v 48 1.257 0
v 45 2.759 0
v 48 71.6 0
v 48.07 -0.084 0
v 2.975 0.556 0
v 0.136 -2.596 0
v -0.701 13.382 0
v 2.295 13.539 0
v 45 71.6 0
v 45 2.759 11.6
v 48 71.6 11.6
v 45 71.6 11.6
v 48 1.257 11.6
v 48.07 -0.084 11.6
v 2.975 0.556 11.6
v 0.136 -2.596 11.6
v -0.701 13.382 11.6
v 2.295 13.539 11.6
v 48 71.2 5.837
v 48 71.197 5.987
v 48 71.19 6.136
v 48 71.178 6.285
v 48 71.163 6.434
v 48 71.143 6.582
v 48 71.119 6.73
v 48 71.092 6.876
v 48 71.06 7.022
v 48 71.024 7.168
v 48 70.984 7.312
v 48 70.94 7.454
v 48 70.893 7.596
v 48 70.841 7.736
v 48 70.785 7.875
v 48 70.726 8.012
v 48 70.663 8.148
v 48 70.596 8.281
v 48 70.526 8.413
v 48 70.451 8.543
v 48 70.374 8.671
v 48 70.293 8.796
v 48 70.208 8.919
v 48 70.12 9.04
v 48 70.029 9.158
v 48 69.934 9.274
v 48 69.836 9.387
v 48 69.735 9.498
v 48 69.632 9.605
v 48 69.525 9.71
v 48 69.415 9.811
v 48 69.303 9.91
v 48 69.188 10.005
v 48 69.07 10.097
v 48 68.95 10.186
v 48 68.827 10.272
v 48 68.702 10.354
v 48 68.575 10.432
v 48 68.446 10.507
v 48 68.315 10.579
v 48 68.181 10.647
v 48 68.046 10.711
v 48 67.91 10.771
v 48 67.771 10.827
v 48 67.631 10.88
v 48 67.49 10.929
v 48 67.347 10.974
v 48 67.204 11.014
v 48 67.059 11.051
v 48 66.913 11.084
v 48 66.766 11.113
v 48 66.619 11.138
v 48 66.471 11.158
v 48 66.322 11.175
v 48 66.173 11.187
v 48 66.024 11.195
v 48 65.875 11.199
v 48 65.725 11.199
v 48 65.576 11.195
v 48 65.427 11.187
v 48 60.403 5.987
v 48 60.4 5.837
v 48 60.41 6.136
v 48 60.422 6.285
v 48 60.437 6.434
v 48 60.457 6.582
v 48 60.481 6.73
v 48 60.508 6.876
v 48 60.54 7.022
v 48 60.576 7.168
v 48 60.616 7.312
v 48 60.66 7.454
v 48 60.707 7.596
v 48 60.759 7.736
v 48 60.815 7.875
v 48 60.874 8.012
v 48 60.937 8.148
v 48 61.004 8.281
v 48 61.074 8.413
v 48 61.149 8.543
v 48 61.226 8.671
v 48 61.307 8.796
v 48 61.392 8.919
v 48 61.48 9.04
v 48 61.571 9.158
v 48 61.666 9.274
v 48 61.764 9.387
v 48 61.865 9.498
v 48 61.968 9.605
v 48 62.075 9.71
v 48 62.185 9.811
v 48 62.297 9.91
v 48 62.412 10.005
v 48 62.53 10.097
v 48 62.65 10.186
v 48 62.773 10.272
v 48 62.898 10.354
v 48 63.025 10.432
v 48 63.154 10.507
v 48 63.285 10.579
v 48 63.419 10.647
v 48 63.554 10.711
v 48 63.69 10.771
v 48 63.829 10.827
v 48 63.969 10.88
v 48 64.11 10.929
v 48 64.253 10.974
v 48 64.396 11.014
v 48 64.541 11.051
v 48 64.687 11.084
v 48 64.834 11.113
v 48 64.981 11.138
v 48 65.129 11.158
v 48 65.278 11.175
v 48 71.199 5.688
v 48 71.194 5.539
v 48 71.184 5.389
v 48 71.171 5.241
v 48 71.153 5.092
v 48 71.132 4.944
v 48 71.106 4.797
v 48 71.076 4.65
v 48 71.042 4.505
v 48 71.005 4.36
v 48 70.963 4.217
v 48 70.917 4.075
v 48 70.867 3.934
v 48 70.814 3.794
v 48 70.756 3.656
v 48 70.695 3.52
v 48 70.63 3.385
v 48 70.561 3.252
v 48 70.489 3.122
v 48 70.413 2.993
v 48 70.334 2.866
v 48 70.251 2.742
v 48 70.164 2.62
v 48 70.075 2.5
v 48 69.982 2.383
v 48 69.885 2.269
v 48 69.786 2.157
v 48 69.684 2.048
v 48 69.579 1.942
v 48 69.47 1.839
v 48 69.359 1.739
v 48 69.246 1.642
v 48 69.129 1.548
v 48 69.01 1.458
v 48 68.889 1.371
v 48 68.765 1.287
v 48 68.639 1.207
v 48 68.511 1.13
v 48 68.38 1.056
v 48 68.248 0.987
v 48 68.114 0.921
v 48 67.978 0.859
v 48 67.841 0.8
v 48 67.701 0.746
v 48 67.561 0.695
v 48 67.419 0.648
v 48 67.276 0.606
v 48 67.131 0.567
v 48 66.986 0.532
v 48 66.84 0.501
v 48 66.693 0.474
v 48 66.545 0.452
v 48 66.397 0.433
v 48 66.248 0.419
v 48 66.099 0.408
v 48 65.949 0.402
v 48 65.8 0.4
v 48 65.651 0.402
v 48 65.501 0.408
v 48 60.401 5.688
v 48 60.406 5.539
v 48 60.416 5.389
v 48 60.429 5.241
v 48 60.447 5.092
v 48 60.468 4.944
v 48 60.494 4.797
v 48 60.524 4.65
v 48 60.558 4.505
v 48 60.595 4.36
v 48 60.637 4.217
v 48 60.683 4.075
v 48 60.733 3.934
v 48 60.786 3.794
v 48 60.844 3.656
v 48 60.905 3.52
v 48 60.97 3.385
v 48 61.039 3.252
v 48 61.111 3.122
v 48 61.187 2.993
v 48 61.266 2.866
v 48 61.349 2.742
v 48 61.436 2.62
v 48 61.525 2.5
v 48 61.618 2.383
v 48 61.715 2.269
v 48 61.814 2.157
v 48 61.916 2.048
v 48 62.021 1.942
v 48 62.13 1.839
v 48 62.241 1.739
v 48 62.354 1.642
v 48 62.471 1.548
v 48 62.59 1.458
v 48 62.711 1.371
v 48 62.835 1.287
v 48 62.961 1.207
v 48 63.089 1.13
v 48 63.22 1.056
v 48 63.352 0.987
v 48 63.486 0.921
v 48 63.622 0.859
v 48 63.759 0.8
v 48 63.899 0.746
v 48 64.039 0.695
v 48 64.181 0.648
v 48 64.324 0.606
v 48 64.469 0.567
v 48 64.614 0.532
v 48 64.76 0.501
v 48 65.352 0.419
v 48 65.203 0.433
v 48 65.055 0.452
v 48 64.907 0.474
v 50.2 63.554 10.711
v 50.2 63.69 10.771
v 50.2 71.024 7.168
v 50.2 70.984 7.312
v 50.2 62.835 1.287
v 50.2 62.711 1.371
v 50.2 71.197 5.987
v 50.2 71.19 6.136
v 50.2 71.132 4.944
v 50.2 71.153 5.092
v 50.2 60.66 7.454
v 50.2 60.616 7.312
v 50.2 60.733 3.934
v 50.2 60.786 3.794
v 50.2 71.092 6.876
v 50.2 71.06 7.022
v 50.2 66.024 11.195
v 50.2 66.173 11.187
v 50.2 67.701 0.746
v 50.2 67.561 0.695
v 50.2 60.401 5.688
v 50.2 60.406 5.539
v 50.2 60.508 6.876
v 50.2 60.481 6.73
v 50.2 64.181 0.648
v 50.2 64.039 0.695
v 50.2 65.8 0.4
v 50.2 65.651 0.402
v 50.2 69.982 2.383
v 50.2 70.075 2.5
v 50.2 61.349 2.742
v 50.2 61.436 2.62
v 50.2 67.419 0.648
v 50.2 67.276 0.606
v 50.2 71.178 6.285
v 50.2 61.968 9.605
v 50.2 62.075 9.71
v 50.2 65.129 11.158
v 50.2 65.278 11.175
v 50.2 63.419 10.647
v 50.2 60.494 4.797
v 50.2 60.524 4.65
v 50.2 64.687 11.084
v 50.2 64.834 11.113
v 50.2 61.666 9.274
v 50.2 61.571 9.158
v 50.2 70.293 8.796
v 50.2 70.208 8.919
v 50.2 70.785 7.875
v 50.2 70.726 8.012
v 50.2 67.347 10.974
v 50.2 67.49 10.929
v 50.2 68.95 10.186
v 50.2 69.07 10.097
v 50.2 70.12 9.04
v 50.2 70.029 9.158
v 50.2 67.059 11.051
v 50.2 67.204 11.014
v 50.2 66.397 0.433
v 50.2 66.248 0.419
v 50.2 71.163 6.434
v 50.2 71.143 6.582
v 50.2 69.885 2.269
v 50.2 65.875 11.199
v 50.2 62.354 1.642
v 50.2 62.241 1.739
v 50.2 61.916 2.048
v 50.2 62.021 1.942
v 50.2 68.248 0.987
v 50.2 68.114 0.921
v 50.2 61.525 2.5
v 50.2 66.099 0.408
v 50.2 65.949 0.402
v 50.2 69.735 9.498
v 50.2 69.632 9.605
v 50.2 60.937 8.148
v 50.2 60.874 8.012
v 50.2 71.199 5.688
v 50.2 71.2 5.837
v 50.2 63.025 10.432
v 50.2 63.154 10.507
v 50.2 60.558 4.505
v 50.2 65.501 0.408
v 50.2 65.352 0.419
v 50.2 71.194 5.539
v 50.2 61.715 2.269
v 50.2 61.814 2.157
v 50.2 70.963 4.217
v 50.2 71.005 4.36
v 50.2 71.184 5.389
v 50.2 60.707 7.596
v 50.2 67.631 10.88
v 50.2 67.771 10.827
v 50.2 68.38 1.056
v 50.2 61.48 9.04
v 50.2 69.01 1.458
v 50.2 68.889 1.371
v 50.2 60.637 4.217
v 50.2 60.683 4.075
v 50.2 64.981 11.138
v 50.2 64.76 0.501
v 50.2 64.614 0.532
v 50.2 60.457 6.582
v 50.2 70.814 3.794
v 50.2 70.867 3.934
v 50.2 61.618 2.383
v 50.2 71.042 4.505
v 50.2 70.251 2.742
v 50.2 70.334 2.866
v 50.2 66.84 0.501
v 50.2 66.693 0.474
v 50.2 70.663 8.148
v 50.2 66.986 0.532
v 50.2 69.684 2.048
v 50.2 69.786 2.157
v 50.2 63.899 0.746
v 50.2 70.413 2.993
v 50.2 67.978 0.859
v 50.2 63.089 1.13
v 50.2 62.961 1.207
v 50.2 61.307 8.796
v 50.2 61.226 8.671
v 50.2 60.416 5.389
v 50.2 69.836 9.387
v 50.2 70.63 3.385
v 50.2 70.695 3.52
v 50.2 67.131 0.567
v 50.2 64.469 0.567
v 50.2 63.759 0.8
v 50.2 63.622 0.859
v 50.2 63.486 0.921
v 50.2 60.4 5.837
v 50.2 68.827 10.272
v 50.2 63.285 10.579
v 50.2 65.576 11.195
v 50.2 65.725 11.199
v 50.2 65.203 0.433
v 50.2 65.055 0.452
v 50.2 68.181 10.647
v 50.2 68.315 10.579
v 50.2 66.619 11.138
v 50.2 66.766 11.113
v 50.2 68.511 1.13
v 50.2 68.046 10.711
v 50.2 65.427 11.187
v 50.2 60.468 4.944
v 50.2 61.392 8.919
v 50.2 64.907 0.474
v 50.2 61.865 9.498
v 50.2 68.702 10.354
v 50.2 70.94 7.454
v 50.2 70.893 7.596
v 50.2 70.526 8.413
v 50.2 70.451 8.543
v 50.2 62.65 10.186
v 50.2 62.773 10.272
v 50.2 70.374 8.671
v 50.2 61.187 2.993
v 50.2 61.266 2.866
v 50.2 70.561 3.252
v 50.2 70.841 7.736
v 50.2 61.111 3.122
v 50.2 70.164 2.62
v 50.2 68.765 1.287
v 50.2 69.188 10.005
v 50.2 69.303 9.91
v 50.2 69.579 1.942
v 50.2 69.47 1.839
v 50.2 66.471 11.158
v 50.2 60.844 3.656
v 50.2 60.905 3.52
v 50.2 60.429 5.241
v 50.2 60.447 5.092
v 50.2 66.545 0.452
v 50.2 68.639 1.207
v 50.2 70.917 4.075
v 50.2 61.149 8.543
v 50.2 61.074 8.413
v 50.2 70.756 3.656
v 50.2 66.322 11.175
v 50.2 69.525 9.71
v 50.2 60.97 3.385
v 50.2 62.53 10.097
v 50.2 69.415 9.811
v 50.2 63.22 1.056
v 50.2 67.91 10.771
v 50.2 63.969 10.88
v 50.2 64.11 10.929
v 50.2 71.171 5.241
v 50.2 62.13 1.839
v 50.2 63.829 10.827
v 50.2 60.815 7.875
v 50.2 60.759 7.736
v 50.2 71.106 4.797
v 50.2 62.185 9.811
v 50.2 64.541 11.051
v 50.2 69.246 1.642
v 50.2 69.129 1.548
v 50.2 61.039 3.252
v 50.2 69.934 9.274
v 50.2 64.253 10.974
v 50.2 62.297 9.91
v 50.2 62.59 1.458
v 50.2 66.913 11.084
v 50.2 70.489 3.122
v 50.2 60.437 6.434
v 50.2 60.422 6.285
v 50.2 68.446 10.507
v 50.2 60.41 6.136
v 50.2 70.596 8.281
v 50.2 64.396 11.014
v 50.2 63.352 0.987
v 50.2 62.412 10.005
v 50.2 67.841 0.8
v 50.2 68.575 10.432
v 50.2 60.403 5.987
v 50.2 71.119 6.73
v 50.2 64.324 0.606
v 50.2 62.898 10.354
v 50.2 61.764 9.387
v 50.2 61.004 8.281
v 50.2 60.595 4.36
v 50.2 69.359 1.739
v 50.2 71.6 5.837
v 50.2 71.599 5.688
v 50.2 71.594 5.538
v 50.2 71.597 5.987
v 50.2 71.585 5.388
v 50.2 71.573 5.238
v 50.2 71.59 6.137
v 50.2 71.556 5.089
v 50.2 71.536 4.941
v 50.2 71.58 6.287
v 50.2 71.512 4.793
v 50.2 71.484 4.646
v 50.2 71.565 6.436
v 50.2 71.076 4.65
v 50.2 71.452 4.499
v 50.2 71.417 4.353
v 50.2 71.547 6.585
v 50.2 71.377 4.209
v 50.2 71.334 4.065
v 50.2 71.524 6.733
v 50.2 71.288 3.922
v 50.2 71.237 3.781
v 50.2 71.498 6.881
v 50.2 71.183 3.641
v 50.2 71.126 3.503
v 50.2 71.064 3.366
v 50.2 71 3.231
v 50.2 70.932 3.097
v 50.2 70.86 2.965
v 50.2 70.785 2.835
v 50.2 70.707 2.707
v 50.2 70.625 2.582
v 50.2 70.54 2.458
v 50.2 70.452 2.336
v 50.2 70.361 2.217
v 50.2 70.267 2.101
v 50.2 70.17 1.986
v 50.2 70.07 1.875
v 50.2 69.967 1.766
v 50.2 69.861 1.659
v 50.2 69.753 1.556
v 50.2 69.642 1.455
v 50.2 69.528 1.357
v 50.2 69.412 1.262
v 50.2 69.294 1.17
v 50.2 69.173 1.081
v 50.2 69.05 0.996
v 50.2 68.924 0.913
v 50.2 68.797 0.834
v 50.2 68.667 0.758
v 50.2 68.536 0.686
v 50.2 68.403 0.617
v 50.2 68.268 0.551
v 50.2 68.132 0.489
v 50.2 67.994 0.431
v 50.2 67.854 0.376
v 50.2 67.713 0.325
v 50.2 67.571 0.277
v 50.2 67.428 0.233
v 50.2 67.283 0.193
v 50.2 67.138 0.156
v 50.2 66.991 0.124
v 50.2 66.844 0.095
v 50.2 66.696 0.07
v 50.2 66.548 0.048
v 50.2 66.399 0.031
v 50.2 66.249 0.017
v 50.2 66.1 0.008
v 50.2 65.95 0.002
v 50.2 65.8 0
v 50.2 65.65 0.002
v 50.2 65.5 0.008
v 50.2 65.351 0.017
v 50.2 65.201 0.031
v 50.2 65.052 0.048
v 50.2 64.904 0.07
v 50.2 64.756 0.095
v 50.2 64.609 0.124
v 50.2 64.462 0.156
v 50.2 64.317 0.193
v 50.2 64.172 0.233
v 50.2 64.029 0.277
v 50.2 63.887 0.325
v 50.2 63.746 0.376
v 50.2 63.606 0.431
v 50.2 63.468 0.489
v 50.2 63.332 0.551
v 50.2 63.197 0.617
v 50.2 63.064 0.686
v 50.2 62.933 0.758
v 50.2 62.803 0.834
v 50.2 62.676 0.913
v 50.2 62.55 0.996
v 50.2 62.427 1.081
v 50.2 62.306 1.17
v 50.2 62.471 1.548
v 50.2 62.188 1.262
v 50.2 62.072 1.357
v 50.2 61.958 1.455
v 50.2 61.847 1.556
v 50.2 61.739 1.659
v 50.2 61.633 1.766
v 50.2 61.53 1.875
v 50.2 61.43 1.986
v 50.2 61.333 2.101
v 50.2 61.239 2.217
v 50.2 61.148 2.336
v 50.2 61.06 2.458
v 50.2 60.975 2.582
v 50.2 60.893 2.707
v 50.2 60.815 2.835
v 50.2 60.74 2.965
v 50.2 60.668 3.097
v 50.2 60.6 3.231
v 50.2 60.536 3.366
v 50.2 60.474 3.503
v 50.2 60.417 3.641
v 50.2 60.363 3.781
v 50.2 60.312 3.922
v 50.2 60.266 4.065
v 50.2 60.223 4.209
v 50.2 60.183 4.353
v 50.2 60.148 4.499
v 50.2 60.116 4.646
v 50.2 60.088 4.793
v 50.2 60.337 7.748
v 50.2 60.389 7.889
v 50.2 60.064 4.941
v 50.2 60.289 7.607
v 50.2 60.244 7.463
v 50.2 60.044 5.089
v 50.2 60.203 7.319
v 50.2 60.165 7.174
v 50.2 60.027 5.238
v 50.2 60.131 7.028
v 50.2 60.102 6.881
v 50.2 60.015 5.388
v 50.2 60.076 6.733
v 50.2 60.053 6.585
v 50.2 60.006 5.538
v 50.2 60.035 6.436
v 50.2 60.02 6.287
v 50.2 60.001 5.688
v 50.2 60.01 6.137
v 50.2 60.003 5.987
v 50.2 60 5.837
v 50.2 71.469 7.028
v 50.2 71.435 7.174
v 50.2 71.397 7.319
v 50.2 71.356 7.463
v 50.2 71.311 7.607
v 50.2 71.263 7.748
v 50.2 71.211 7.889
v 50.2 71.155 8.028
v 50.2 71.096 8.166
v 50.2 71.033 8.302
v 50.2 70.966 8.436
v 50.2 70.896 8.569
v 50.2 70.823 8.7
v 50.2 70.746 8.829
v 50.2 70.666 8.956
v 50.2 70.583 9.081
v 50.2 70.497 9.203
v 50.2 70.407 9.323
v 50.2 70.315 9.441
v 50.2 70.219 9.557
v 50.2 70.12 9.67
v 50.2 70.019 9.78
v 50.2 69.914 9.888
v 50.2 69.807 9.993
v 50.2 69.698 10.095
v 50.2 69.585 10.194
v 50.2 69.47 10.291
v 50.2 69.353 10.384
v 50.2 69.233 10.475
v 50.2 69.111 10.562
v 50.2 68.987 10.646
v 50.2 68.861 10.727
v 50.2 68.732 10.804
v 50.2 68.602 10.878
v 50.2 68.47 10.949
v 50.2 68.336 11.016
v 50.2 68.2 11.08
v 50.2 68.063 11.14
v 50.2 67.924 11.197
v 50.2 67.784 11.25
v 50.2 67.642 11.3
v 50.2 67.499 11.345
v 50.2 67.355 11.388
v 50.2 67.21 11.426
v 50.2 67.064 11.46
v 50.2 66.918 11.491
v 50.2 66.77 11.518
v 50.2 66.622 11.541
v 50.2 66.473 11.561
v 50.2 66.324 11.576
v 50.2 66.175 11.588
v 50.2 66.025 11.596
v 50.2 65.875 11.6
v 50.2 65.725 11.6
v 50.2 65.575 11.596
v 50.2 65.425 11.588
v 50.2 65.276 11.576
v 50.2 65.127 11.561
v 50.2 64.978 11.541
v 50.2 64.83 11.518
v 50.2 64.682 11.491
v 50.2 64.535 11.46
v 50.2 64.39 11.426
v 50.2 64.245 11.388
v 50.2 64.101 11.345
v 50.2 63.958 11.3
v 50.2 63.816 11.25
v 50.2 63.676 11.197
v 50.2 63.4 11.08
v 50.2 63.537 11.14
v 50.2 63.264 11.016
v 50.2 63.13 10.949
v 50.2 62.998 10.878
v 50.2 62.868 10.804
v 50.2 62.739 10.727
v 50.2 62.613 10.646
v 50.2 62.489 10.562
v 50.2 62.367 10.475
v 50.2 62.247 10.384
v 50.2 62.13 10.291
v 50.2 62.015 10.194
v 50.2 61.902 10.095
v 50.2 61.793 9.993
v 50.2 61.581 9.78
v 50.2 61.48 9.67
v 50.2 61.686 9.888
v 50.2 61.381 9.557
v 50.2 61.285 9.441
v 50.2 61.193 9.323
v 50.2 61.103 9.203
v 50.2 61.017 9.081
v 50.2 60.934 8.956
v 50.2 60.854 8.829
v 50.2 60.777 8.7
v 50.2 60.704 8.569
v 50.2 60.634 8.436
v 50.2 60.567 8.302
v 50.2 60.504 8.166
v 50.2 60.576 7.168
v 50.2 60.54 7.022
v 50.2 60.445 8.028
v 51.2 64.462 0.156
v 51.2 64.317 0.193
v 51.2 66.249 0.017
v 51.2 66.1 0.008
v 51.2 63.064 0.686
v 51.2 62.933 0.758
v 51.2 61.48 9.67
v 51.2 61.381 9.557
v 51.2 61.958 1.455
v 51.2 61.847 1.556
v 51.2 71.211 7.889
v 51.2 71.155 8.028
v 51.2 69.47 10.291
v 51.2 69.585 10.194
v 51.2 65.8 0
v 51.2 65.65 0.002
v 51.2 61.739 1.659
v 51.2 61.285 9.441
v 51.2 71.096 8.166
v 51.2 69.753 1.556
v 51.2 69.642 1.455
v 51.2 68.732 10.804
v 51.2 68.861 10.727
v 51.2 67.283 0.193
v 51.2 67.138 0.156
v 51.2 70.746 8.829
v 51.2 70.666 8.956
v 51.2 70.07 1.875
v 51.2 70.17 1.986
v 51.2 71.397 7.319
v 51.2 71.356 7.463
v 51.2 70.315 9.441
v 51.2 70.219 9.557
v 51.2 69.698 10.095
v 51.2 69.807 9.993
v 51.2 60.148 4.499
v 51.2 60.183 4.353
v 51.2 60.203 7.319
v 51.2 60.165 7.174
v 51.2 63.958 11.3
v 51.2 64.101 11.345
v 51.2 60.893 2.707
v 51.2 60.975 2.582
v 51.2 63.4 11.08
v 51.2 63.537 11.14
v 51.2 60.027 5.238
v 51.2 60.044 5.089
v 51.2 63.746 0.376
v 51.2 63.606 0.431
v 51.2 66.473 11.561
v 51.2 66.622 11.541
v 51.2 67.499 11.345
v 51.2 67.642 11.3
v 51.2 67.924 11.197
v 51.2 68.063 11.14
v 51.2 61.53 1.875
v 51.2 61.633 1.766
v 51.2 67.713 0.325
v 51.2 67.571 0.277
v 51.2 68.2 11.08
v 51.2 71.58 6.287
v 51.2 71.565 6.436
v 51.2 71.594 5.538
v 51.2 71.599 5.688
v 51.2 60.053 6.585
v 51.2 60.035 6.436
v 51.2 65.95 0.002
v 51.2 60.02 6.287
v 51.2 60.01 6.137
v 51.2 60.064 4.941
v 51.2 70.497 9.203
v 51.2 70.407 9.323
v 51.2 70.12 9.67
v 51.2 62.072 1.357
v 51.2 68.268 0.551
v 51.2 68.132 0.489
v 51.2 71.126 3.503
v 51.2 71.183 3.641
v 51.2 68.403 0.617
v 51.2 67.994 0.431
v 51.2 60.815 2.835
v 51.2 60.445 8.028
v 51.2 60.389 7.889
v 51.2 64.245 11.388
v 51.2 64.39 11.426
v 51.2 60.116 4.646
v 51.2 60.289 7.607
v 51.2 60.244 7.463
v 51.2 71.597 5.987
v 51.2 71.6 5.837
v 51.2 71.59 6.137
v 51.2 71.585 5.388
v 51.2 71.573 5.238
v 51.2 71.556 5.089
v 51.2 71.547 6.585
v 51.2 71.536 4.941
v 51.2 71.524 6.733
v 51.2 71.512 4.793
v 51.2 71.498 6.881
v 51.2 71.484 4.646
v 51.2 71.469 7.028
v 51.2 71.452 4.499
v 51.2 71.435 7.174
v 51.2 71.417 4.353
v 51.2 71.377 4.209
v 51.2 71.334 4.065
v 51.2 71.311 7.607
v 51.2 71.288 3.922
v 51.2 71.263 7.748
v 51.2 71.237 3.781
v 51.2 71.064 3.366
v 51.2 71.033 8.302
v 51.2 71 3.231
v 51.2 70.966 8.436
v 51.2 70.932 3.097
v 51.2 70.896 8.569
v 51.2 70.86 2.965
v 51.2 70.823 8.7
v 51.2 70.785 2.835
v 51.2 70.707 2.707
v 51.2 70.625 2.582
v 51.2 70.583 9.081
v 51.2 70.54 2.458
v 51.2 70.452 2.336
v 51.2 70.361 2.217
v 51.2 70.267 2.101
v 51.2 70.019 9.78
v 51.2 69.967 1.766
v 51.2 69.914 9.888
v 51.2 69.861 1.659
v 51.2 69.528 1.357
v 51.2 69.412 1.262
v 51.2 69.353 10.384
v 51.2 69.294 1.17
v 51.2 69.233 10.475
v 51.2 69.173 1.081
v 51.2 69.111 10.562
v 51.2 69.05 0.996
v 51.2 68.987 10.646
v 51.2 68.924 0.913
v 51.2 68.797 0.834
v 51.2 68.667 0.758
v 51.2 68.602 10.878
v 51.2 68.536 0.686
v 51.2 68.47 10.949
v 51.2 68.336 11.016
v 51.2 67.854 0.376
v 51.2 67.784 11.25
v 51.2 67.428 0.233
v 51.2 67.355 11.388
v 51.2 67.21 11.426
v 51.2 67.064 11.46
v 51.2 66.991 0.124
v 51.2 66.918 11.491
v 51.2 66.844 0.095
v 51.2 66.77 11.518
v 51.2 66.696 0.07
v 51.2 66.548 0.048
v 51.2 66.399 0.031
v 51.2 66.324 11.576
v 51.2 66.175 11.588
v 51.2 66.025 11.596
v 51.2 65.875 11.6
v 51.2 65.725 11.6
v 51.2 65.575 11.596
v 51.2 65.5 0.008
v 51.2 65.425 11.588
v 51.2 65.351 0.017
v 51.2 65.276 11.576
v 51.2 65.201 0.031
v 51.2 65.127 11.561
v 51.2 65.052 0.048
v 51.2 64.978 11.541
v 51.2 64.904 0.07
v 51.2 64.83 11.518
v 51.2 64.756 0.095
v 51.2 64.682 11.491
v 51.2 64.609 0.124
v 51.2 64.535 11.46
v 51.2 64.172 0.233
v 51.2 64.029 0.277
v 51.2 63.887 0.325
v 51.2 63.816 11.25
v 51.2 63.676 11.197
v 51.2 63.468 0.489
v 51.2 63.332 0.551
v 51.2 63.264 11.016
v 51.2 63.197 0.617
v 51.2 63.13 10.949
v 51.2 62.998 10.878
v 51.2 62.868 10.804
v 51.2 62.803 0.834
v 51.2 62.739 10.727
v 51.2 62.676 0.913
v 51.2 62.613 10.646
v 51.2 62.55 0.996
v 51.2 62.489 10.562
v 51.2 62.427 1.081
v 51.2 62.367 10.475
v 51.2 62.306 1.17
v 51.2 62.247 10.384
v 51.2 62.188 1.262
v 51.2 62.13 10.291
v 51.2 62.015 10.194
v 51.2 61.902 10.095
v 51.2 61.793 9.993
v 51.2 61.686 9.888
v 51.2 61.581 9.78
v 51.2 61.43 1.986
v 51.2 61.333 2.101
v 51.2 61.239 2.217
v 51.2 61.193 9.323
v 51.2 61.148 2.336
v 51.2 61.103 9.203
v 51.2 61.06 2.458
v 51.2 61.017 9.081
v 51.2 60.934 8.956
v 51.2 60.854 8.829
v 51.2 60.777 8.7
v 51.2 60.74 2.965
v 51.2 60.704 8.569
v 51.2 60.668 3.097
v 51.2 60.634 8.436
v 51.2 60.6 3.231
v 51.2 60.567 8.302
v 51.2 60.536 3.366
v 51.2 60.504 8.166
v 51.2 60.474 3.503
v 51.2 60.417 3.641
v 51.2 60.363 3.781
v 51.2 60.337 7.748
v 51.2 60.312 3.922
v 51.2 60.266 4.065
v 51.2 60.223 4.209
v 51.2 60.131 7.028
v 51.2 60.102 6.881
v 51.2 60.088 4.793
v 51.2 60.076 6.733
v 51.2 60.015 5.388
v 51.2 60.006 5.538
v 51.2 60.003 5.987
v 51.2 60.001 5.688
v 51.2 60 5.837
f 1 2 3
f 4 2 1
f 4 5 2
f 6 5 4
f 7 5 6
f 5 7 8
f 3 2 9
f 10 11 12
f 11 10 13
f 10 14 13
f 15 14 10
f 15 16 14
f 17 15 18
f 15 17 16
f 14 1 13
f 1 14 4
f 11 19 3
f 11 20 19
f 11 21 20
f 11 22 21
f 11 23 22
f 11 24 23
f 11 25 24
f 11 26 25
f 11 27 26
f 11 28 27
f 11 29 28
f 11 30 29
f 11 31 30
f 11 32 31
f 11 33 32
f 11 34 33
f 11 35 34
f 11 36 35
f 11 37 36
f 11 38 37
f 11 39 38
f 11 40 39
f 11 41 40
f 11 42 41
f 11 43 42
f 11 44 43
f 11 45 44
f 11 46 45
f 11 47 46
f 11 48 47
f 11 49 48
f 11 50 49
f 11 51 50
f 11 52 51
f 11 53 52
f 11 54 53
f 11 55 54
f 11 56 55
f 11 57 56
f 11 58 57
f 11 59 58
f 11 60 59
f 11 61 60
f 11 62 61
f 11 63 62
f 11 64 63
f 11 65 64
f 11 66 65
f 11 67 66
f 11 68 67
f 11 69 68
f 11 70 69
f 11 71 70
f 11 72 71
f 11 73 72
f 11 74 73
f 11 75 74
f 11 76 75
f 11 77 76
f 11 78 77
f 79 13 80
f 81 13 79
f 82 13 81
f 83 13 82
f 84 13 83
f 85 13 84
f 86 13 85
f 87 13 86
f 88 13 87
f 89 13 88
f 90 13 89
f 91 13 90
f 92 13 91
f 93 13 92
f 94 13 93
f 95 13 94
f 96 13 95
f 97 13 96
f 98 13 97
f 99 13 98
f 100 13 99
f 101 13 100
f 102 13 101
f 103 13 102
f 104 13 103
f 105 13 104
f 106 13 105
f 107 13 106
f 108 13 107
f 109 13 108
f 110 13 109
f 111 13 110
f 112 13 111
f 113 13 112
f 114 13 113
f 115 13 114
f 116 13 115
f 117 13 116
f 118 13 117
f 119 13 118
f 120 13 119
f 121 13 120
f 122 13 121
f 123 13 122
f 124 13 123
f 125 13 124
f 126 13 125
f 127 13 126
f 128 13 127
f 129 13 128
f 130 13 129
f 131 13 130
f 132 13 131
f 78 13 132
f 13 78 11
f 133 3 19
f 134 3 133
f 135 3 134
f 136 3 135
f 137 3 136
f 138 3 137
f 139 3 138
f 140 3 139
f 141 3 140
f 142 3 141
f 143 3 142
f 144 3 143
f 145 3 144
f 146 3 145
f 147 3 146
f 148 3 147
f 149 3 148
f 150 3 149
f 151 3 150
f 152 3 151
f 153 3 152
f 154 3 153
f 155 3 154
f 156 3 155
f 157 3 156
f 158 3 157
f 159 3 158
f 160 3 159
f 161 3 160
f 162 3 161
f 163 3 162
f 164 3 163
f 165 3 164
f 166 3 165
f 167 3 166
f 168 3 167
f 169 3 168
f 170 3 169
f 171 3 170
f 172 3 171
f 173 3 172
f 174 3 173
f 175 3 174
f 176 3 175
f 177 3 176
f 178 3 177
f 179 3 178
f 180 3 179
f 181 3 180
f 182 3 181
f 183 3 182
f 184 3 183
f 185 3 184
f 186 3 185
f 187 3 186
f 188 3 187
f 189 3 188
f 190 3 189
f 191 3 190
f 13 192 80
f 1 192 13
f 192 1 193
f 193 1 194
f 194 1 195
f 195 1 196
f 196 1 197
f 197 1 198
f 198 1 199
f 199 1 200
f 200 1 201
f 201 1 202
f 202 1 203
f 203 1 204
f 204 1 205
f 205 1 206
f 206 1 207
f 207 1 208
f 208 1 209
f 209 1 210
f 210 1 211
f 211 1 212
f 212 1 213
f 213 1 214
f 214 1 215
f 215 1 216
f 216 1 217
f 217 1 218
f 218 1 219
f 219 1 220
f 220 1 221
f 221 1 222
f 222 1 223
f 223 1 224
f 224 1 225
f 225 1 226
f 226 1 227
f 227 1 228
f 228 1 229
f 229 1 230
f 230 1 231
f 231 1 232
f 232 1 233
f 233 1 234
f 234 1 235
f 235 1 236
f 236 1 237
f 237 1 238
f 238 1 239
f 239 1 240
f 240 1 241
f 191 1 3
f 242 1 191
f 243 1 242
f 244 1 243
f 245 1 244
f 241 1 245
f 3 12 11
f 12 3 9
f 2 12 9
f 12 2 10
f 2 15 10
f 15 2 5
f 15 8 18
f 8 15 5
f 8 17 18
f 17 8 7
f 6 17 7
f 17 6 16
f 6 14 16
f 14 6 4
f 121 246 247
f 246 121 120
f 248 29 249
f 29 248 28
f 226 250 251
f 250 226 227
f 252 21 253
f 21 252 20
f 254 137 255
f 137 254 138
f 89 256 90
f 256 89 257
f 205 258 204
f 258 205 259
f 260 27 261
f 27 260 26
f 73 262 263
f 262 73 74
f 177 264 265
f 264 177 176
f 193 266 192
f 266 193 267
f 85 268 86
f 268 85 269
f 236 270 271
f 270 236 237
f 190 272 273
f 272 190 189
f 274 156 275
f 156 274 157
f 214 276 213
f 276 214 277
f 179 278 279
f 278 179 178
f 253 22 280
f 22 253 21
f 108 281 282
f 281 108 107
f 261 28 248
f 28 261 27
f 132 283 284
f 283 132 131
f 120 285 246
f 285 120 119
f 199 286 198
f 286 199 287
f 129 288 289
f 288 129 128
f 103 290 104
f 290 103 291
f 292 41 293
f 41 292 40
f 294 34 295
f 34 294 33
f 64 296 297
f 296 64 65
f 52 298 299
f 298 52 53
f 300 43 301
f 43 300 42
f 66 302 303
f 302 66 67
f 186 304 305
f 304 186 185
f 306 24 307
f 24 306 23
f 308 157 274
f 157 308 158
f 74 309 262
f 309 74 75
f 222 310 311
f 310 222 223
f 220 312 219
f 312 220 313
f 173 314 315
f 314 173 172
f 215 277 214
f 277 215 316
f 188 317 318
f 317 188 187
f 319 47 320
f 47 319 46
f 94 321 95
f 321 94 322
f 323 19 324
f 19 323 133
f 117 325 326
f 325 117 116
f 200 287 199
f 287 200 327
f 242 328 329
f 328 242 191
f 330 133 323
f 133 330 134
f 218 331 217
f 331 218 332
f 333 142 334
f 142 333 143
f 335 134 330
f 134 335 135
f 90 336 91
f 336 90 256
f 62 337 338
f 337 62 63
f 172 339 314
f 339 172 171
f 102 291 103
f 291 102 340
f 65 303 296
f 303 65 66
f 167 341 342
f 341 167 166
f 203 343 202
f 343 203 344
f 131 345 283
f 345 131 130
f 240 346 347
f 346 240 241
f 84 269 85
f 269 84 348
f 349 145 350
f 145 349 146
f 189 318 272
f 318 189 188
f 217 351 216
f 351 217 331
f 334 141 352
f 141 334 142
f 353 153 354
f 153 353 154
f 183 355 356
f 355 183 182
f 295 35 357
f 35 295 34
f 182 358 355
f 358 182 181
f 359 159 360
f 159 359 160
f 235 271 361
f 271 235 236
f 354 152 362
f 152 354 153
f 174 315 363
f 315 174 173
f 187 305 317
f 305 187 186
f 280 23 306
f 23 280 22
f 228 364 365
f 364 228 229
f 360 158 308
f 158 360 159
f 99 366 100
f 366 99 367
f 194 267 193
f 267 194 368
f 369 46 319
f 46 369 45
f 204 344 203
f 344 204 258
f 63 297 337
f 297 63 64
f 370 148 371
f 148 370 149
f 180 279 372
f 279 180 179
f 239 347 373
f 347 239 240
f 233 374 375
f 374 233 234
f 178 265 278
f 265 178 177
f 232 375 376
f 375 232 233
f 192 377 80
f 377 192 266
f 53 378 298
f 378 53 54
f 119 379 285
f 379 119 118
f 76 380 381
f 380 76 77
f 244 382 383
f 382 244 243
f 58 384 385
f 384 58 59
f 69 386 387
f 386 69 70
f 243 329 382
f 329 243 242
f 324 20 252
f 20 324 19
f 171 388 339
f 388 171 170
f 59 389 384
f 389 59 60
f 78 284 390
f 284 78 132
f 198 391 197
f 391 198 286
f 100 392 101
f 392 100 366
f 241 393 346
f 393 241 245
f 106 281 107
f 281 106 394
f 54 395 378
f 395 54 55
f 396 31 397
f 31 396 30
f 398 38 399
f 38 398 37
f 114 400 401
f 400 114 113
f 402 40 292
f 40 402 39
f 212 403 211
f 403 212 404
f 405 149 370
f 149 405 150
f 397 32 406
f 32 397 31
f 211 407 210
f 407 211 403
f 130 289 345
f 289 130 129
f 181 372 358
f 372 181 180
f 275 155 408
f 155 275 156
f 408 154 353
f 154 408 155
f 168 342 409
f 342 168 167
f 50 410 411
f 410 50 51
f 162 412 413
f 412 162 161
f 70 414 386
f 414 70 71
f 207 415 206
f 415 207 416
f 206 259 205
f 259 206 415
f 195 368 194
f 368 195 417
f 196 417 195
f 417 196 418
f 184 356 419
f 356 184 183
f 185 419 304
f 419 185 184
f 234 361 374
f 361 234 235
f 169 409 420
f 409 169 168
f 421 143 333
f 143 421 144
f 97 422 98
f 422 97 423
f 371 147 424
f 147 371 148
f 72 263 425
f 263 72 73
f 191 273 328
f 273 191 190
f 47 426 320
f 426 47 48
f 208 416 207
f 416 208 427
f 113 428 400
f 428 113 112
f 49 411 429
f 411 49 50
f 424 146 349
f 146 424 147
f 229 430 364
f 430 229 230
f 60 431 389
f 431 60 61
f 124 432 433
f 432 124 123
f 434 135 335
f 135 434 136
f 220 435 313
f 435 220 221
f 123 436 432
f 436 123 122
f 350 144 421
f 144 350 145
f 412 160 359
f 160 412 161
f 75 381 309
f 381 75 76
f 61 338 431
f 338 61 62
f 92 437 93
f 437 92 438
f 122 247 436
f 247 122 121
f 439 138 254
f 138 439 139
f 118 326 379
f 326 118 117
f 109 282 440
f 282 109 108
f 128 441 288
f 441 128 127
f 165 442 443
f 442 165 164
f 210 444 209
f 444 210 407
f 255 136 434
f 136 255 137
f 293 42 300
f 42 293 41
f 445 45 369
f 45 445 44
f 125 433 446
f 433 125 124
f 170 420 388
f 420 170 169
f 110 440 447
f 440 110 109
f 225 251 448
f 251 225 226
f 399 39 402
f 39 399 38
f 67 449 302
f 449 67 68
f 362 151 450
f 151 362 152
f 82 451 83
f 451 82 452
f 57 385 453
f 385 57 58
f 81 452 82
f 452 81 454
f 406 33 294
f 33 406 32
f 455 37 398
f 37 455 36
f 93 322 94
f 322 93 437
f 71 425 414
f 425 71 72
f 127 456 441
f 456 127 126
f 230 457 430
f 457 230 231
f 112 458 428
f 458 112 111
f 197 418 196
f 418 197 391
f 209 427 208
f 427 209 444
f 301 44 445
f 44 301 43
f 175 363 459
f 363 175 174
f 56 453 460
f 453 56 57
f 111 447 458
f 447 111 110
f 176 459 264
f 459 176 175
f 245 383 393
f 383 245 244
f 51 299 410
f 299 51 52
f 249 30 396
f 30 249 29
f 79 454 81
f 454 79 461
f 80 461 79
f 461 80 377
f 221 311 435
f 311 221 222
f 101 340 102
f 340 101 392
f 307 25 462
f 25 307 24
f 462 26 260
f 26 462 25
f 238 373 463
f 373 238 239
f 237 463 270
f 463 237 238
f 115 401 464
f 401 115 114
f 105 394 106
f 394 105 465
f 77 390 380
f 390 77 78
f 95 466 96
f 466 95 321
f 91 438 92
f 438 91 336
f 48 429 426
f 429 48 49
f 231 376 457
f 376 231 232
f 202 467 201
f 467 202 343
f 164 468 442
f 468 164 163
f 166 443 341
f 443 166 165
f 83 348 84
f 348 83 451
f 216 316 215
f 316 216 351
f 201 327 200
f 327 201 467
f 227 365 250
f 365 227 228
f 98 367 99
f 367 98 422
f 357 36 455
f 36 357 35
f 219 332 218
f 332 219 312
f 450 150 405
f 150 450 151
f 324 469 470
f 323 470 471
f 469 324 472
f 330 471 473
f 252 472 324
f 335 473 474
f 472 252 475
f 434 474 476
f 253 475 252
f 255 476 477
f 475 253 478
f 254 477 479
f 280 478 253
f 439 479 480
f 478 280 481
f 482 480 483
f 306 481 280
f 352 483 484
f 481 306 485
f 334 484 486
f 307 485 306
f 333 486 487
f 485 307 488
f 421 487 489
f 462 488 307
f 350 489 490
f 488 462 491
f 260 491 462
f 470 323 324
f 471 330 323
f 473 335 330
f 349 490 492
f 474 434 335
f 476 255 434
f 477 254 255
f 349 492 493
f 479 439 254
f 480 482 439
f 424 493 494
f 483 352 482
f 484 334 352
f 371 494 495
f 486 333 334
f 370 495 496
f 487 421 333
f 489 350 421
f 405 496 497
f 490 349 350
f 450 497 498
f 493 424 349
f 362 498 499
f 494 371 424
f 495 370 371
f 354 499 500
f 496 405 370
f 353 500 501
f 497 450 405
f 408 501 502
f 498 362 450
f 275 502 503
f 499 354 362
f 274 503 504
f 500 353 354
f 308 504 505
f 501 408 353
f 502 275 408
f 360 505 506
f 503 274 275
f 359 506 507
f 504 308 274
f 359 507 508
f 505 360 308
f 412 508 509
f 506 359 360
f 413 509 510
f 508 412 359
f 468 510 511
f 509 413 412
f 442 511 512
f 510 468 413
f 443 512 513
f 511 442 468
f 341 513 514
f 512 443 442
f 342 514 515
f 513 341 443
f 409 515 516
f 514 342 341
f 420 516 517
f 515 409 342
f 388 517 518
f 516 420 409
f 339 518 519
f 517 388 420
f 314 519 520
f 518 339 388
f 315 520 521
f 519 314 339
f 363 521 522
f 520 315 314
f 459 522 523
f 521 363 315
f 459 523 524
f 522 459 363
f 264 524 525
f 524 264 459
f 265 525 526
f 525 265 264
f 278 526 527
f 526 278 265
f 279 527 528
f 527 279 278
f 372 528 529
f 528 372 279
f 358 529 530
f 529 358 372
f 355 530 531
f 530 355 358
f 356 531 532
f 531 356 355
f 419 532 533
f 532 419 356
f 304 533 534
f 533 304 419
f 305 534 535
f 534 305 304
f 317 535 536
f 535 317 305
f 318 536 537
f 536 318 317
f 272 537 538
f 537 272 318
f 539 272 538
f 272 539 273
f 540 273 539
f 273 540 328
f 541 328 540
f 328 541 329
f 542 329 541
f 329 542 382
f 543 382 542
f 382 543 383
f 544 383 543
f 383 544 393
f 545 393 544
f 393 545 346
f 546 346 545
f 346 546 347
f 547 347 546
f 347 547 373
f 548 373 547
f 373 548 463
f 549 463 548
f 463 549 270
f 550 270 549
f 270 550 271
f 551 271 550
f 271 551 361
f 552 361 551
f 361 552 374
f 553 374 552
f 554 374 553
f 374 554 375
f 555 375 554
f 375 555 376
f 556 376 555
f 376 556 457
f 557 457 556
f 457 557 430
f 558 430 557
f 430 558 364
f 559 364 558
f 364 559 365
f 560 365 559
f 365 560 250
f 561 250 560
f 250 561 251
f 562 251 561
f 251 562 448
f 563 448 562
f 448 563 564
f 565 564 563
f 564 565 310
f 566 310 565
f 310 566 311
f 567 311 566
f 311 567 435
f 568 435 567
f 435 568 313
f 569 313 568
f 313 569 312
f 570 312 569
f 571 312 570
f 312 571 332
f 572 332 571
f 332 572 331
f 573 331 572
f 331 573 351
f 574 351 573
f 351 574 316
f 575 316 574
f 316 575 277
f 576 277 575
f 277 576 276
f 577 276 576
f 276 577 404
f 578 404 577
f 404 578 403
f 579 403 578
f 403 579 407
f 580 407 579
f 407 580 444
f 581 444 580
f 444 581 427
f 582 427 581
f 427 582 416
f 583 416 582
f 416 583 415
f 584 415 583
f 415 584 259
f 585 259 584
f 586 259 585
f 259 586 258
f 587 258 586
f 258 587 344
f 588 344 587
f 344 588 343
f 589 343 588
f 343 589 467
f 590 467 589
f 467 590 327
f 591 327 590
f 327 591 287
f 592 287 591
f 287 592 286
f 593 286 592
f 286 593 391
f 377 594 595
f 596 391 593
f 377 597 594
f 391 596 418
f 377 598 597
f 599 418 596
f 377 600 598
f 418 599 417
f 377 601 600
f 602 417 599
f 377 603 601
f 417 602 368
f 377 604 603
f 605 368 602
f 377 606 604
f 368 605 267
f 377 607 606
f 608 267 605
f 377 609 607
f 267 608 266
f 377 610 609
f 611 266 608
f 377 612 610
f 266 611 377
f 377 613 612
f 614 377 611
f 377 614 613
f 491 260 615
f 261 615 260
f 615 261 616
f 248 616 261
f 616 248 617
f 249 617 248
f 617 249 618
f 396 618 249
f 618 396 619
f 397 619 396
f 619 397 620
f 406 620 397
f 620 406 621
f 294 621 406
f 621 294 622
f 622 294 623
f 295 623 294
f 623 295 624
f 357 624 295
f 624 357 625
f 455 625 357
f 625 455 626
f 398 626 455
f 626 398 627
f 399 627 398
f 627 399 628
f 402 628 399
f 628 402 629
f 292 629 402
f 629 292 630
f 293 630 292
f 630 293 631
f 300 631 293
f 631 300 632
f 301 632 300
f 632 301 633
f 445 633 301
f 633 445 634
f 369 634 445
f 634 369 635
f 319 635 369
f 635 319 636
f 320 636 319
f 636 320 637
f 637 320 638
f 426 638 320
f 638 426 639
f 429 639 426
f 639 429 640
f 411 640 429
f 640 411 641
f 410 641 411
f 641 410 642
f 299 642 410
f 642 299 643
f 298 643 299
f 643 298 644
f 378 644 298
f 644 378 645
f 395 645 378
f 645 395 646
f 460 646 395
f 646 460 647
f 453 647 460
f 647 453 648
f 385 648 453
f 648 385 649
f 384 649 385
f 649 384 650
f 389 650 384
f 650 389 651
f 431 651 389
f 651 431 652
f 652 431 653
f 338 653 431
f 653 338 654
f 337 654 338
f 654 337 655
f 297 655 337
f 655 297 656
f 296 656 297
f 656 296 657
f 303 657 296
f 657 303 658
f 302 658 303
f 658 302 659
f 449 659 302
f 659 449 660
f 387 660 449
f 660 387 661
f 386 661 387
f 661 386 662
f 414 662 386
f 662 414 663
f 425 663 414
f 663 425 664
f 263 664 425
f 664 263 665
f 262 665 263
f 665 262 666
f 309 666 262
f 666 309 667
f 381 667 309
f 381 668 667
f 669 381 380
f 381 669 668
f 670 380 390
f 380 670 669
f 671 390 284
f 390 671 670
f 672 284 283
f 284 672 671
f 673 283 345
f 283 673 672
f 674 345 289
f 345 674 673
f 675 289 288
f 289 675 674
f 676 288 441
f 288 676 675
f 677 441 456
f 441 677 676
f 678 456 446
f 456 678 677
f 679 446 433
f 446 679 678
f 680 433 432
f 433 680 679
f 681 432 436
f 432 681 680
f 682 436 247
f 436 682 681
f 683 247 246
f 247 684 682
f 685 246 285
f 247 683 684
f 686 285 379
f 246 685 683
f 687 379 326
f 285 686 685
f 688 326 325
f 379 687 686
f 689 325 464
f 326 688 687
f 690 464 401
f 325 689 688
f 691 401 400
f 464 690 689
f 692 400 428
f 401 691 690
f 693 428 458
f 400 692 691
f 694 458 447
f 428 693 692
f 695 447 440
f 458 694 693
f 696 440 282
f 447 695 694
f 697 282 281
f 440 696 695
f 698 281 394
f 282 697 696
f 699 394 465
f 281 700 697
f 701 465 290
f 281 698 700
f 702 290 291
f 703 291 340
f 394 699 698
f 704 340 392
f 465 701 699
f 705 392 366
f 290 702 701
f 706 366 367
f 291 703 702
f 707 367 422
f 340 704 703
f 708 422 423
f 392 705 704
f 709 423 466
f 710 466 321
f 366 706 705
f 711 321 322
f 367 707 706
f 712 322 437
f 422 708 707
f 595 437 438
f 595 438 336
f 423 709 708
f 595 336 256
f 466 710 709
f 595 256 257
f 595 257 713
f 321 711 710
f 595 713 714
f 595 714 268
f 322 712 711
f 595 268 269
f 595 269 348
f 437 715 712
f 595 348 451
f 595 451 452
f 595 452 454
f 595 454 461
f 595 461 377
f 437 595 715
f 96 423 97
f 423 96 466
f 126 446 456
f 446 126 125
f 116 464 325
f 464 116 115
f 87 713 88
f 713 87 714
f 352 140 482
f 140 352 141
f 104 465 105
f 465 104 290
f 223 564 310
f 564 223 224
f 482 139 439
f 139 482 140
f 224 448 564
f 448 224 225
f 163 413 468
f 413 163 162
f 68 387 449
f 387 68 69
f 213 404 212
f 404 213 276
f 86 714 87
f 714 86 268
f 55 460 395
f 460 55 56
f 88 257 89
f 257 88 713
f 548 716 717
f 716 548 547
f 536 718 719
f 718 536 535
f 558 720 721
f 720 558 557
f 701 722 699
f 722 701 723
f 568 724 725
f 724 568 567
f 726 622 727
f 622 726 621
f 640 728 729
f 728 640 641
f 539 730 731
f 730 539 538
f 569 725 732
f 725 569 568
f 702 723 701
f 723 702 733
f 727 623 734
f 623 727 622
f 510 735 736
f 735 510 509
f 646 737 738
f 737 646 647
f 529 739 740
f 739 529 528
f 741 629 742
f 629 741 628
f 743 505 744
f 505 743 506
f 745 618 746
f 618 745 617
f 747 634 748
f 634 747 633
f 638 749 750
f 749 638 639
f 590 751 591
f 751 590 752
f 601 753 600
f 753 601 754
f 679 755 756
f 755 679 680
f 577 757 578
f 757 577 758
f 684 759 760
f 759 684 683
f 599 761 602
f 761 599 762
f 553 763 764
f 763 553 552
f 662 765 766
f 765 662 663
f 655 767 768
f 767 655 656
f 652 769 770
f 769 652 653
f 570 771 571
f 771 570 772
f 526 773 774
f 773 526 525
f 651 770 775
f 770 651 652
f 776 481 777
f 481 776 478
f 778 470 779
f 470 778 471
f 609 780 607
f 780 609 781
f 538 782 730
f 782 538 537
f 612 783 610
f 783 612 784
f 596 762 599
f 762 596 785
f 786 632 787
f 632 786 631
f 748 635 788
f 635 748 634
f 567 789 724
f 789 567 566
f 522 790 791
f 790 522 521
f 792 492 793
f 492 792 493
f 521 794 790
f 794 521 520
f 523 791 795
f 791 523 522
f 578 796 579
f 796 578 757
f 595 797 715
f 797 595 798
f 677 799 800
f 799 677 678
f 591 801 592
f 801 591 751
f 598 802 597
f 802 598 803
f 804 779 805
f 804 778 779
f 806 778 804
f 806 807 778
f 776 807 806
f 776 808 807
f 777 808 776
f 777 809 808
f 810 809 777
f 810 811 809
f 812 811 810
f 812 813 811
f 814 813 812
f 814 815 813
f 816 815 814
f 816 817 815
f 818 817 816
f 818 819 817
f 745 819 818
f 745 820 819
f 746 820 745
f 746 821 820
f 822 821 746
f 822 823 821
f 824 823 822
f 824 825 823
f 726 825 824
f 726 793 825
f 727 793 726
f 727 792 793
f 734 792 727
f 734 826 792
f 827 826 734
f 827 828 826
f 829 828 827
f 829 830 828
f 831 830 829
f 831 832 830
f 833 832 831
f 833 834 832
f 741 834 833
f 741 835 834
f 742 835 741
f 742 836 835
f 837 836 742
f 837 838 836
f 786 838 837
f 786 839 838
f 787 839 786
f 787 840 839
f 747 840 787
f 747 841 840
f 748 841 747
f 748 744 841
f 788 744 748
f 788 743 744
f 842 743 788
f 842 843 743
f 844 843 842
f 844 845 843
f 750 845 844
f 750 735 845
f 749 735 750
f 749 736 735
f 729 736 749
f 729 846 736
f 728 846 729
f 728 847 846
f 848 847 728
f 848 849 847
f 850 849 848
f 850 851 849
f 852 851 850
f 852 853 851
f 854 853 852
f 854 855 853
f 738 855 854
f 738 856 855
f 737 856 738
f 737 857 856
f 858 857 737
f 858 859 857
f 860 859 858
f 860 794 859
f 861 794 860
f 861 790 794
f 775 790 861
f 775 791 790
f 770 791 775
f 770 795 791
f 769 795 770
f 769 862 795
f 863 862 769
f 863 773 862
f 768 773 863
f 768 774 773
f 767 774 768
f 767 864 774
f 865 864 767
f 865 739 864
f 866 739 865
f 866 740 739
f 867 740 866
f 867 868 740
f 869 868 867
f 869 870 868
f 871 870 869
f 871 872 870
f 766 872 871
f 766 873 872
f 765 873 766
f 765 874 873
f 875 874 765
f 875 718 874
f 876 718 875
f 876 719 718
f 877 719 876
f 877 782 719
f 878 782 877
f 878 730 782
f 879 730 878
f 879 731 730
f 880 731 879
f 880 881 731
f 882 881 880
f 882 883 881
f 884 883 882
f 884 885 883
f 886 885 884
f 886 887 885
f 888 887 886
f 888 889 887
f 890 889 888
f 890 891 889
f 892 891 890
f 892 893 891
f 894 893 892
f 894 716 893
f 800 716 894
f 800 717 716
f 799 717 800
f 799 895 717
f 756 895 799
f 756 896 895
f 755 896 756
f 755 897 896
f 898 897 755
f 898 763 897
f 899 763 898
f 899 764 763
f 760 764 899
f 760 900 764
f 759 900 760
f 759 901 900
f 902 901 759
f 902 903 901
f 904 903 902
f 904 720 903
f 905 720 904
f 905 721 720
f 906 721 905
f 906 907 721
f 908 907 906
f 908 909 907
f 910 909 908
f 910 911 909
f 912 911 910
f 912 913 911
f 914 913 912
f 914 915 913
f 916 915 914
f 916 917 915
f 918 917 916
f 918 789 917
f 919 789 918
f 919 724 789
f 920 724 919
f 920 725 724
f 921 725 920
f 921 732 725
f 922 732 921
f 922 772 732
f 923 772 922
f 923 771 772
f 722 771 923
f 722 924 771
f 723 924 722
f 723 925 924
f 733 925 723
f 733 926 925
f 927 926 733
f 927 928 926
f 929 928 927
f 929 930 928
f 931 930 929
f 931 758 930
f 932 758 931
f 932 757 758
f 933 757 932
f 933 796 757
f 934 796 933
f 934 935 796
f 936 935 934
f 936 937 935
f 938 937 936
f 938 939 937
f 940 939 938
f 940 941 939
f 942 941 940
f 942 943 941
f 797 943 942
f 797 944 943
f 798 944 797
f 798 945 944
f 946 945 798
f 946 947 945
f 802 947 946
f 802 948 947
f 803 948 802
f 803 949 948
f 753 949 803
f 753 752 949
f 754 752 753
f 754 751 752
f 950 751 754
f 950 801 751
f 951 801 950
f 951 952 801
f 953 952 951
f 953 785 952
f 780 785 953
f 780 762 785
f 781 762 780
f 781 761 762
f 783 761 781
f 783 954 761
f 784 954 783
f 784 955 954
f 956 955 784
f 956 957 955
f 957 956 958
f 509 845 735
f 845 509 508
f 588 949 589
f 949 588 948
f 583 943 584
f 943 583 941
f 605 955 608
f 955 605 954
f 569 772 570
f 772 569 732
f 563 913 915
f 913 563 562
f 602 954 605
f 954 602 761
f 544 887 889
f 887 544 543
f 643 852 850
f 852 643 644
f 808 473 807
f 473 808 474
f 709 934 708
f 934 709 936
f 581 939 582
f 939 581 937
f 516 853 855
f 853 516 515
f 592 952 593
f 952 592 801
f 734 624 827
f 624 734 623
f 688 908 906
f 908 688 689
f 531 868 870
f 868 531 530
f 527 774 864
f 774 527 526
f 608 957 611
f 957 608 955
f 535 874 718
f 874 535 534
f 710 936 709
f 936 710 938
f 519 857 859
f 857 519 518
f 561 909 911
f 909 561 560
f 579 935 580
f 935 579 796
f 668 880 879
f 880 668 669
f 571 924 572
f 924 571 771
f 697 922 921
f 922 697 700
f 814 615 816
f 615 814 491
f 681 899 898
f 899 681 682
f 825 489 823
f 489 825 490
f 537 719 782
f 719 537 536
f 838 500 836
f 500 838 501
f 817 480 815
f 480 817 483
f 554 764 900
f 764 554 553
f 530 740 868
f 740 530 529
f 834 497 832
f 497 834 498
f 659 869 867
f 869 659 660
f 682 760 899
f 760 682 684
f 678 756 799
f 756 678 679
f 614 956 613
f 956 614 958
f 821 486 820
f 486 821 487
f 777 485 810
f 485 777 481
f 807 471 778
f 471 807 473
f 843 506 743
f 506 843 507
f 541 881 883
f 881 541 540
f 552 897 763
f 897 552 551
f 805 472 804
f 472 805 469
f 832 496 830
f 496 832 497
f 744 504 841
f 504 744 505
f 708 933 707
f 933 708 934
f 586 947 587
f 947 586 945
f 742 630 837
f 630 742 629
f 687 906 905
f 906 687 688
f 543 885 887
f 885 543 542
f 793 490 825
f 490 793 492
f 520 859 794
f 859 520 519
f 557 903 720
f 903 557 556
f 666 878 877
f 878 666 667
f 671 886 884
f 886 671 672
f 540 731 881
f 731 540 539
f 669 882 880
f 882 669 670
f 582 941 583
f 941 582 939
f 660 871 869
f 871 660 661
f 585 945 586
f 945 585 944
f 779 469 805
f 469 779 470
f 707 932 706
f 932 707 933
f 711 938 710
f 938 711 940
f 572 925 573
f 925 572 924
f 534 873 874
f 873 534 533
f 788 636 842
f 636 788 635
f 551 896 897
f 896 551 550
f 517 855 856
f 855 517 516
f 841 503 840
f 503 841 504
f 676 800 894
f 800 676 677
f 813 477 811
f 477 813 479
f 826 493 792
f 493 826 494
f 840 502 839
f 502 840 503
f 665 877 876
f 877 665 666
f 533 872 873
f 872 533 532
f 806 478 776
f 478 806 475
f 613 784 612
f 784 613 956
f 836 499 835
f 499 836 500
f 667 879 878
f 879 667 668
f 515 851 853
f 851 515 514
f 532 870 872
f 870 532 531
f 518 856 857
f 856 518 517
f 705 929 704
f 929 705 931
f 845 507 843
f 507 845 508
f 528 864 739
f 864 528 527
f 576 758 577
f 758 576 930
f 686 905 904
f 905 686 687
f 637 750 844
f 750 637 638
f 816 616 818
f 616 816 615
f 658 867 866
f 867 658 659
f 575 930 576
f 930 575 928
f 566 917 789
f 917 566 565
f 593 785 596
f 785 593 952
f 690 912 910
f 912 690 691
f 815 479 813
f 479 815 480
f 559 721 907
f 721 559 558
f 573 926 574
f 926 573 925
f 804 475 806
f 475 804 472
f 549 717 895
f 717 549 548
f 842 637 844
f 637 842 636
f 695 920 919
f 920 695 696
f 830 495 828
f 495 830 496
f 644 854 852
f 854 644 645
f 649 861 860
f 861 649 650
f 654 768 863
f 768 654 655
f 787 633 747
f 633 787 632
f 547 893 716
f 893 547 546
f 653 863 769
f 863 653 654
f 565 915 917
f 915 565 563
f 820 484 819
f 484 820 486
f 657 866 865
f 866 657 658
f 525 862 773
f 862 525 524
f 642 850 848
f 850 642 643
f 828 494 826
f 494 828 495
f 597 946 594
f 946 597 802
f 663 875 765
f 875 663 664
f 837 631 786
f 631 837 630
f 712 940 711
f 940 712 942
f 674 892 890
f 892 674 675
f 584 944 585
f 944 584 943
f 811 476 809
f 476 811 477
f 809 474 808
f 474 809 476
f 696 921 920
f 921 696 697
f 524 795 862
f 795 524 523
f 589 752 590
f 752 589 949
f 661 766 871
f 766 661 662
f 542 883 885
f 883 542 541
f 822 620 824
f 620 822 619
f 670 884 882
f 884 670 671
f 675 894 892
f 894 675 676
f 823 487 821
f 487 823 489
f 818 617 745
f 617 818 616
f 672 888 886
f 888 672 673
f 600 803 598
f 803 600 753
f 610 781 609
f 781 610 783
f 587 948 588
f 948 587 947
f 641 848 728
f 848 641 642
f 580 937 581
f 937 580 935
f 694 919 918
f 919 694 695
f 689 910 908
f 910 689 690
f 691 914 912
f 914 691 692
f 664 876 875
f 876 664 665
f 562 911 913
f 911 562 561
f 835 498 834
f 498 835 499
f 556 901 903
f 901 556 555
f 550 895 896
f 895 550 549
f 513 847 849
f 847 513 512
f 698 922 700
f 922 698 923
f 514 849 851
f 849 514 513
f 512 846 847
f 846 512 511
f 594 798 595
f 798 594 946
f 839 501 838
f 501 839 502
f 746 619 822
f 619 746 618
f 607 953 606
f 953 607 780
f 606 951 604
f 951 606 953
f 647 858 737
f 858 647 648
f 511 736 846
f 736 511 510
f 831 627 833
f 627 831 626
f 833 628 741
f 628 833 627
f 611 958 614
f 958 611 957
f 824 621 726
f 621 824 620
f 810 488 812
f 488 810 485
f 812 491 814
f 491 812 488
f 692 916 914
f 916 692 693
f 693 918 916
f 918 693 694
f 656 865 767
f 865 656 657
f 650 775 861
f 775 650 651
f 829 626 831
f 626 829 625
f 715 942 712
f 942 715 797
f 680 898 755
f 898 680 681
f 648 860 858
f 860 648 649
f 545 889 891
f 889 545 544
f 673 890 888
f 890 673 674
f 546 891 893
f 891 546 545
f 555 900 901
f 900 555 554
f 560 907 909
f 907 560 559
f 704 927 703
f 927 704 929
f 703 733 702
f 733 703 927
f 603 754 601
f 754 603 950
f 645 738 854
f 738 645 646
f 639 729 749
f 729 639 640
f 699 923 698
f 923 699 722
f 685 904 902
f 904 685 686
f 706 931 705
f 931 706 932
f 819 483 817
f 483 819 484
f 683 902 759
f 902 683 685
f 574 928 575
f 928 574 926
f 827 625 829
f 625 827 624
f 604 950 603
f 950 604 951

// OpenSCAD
$fa = 1;
$fs = 0.15;

w = 42;
d = 13;
d2 = 57;
t = 3;
hd = 11.6;

linear_extrude(hd) {
  rotate([0, 0, 3])
  translate([0, -2.6, 0]) {
      square([w + 2 * t, t]);
    square([t, d + t]);
  }
  translate([w + t, 0, 0])
    square([t, d2 + t + hd]);
}

color("blue")
translate([w + 2 * t, d2 + hd / 2 + t, hd / 2])
rotate([0, 90, 0])
  cylinder(d = hd-0.8, h = 2.2);
translate([w + 2 * t + 2.2, d2 + hd / 2 + t, hd / 2])
rotate([0, 90, 0])
color("red")
  cylinder(h = 1, d = hd);
